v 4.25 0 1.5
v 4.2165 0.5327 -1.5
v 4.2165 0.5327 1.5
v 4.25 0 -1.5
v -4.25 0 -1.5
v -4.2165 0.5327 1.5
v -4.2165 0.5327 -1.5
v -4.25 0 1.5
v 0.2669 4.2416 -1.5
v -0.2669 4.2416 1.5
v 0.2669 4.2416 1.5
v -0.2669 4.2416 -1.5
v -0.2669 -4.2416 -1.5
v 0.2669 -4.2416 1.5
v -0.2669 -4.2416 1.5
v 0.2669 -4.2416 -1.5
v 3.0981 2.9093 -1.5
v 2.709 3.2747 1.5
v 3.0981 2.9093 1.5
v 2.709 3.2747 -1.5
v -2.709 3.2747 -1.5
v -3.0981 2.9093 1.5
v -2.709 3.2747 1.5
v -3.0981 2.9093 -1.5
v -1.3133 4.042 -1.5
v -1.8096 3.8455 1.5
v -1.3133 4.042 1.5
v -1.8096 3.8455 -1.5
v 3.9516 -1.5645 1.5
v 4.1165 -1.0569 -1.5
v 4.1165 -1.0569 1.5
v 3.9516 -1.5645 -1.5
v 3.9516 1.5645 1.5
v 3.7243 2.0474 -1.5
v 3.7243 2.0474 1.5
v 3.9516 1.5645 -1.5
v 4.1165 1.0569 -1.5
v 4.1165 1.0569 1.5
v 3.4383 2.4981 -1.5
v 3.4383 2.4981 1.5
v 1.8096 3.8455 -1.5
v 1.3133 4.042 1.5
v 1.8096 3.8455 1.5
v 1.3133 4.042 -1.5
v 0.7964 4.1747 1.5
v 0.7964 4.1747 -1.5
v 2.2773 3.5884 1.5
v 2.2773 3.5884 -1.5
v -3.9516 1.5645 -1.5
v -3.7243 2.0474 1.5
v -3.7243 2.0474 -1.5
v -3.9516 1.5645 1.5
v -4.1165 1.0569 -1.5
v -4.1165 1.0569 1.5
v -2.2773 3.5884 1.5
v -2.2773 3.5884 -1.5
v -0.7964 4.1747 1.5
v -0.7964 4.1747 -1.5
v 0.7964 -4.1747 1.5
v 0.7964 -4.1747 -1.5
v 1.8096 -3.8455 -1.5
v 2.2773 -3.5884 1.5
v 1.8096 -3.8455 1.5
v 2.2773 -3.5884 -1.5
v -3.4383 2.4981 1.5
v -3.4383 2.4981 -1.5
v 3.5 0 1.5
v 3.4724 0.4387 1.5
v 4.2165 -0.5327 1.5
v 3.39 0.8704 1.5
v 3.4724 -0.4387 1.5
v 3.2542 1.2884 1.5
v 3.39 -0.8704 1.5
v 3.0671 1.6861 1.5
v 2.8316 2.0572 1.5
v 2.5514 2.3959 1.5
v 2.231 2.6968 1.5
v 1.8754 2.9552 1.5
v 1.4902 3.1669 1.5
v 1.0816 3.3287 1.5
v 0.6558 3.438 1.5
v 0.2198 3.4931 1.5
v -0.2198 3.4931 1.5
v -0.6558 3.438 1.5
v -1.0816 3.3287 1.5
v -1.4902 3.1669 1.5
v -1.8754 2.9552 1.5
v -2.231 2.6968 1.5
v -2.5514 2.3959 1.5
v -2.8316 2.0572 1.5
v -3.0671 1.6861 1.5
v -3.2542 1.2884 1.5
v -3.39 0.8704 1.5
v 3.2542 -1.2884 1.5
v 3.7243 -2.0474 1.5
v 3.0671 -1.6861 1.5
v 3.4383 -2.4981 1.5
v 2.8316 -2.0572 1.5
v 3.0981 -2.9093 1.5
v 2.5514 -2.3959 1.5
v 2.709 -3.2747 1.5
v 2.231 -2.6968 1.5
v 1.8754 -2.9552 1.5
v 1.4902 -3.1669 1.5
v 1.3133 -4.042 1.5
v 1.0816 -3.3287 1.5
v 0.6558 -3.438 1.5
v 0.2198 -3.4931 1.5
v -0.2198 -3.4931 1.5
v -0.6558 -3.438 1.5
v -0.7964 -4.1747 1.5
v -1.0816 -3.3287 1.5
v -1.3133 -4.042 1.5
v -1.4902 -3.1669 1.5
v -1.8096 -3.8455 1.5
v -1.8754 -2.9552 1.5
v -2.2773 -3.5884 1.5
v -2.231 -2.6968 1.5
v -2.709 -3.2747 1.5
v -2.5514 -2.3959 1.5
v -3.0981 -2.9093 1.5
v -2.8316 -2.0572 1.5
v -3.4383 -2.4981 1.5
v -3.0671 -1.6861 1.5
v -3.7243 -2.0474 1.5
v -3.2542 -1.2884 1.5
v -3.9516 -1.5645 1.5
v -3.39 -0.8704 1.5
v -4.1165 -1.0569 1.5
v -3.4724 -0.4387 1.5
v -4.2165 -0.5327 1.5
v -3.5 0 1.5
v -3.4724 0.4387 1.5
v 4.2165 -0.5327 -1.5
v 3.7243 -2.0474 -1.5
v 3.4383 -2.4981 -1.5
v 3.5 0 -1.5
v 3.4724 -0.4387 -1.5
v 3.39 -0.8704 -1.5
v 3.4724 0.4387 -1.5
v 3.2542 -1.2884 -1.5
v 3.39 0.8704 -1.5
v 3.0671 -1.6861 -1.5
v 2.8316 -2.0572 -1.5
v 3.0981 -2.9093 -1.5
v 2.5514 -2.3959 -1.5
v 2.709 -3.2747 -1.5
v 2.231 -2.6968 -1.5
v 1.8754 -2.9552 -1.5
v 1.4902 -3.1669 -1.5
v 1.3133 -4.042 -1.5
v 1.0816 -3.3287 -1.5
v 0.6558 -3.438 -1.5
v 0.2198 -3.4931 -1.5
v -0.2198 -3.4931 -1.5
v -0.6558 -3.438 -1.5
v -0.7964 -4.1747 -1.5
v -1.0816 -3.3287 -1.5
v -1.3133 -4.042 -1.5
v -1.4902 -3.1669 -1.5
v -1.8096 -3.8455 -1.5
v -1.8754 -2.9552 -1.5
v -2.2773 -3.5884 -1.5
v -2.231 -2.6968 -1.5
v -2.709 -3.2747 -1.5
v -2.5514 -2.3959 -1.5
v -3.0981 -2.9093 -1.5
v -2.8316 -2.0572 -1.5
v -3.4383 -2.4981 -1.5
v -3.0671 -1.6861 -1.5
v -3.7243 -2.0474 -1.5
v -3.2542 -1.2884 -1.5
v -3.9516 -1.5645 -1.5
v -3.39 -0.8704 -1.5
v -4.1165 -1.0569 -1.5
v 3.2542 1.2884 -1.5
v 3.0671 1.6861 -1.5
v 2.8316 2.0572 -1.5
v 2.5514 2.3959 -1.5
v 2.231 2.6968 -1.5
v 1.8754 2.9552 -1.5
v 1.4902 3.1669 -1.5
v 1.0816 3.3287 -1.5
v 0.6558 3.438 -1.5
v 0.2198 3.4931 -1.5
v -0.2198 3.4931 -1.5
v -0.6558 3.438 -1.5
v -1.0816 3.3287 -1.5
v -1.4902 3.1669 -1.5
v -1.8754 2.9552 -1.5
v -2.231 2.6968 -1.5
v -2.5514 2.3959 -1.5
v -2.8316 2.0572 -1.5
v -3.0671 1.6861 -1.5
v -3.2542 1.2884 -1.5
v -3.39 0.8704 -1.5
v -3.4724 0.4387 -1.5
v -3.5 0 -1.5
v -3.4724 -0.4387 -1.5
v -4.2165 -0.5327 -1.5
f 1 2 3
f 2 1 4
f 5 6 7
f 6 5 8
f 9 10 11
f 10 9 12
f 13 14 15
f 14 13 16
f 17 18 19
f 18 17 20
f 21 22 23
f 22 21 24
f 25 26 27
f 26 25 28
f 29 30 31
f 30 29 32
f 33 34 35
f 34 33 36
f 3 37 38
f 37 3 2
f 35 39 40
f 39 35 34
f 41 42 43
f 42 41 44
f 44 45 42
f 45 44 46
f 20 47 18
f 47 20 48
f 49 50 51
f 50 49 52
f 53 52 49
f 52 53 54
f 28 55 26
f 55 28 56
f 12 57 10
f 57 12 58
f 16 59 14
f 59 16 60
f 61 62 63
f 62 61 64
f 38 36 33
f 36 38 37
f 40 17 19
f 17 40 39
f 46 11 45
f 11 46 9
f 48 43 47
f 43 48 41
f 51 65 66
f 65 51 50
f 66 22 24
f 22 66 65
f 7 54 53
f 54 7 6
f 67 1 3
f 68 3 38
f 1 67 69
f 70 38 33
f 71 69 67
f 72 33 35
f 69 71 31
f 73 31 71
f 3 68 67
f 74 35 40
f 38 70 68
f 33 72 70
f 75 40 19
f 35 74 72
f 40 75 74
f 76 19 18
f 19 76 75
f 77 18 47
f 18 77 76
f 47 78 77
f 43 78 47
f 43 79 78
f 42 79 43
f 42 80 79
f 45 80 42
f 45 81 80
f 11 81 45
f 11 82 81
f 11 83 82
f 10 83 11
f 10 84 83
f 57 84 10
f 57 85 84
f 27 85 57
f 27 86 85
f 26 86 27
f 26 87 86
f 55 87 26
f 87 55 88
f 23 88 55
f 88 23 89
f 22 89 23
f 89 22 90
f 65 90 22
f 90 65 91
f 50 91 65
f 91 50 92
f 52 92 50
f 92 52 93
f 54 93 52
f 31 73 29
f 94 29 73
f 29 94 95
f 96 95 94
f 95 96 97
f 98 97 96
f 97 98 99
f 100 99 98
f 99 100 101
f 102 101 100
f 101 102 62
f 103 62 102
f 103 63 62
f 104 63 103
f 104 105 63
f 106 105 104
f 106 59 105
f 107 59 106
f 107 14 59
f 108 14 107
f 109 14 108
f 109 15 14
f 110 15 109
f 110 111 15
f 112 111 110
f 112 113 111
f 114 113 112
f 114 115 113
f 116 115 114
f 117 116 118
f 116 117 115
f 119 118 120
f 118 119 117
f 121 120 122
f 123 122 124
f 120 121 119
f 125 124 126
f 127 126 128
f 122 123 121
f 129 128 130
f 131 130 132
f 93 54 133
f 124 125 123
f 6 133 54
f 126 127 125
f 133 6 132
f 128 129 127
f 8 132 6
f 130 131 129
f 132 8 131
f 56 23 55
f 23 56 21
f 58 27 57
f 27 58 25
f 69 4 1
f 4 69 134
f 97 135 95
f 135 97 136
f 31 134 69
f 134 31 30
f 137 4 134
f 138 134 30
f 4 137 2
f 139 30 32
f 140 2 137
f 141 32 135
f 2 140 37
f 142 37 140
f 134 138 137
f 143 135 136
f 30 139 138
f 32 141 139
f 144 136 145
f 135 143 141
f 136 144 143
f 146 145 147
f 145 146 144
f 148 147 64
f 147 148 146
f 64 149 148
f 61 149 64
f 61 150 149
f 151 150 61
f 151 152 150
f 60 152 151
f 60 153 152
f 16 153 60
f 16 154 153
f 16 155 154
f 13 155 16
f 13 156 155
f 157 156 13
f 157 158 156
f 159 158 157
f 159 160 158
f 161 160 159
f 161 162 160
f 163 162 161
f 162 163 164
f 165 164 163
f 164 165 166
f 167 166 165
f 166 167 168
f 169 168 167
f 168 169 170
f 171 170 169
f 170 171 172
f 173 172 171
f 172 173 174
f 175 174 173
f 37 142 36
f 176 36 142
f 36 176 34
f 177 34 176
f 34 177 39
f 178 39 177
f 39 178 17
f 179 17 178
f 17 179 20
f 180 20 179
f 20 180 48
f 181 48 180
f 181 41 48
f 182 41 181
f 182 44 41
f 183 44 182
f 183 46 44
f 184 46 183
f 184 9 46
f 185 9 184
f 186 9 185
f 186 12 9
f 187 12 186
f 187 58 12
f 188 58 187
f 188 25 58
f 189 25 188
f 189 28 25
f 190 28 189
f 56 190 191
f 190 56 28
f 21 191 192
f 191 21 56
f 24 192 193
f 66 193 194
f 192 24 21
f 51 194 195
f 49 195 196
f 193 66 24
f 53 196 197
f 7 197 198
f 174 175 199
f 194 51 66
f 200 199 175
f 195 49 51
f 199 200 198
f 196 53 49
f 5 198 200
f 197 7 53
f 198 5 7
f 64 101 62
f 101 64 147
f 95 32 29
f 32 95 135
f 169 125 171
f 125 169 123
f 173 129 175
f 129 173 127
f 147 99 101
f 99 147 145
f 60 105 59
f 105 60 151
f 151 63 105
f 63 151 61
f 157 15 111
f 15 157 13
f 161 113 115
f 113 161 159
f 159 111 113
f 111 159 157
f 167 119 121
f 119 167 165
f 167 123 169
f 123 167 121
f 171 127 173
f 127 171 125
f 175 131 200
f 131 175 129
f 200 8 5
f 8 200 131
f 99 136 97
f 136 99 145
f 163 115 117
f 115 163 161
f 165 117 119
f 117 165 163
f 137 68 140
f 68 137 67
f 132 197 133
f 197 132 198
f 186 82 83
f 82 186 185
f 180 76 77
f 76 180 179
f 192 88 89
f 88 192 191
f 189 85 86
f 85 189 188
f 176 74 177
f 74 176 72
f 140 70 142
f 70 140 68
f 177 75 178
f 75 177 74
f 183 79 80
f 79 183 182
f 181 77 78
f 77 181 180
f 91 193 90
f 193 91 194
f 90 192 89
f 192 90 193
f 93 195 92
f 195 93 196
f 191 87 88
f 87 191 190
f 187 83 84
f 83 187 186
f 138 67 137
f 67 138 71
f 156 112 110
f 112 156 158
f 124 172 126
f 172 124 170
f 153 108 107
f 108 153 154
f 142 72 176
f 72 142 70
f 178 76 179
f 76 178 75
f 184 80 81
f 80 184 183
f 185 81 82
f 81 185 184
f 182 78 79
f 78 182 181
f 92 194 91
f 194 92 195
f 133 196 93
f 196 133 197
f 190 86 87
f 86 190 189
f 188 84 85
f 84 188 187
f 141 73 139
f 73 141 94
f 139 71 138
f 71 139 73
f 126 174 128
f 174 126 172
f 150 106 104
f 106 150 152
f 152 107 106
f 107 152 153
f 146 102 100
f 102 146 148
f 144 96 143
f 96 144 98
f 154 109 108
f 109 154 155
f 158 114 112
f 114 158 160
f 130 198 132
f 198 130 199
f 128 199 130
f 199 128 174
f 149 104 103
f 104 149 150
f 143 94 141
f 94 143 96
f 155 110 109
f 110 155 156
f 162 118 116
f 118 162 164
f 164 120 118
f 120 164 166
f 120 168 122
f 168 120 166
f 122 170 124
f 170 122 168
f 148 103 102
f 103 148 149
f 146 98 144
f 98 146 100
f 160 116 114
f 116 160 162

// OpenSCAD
$fn = 50;


difference() {
	union() {
		translate(v = [0, 0, -1.5000000000]) {
			cylinder(h = 3, r = 4.2500000000);
		}
	}
	union() {
		translate(v = [0, 0, -100.0000000000]) {
			cylinder(h = 200, r = 3.5000000000);
		}
	}
}
